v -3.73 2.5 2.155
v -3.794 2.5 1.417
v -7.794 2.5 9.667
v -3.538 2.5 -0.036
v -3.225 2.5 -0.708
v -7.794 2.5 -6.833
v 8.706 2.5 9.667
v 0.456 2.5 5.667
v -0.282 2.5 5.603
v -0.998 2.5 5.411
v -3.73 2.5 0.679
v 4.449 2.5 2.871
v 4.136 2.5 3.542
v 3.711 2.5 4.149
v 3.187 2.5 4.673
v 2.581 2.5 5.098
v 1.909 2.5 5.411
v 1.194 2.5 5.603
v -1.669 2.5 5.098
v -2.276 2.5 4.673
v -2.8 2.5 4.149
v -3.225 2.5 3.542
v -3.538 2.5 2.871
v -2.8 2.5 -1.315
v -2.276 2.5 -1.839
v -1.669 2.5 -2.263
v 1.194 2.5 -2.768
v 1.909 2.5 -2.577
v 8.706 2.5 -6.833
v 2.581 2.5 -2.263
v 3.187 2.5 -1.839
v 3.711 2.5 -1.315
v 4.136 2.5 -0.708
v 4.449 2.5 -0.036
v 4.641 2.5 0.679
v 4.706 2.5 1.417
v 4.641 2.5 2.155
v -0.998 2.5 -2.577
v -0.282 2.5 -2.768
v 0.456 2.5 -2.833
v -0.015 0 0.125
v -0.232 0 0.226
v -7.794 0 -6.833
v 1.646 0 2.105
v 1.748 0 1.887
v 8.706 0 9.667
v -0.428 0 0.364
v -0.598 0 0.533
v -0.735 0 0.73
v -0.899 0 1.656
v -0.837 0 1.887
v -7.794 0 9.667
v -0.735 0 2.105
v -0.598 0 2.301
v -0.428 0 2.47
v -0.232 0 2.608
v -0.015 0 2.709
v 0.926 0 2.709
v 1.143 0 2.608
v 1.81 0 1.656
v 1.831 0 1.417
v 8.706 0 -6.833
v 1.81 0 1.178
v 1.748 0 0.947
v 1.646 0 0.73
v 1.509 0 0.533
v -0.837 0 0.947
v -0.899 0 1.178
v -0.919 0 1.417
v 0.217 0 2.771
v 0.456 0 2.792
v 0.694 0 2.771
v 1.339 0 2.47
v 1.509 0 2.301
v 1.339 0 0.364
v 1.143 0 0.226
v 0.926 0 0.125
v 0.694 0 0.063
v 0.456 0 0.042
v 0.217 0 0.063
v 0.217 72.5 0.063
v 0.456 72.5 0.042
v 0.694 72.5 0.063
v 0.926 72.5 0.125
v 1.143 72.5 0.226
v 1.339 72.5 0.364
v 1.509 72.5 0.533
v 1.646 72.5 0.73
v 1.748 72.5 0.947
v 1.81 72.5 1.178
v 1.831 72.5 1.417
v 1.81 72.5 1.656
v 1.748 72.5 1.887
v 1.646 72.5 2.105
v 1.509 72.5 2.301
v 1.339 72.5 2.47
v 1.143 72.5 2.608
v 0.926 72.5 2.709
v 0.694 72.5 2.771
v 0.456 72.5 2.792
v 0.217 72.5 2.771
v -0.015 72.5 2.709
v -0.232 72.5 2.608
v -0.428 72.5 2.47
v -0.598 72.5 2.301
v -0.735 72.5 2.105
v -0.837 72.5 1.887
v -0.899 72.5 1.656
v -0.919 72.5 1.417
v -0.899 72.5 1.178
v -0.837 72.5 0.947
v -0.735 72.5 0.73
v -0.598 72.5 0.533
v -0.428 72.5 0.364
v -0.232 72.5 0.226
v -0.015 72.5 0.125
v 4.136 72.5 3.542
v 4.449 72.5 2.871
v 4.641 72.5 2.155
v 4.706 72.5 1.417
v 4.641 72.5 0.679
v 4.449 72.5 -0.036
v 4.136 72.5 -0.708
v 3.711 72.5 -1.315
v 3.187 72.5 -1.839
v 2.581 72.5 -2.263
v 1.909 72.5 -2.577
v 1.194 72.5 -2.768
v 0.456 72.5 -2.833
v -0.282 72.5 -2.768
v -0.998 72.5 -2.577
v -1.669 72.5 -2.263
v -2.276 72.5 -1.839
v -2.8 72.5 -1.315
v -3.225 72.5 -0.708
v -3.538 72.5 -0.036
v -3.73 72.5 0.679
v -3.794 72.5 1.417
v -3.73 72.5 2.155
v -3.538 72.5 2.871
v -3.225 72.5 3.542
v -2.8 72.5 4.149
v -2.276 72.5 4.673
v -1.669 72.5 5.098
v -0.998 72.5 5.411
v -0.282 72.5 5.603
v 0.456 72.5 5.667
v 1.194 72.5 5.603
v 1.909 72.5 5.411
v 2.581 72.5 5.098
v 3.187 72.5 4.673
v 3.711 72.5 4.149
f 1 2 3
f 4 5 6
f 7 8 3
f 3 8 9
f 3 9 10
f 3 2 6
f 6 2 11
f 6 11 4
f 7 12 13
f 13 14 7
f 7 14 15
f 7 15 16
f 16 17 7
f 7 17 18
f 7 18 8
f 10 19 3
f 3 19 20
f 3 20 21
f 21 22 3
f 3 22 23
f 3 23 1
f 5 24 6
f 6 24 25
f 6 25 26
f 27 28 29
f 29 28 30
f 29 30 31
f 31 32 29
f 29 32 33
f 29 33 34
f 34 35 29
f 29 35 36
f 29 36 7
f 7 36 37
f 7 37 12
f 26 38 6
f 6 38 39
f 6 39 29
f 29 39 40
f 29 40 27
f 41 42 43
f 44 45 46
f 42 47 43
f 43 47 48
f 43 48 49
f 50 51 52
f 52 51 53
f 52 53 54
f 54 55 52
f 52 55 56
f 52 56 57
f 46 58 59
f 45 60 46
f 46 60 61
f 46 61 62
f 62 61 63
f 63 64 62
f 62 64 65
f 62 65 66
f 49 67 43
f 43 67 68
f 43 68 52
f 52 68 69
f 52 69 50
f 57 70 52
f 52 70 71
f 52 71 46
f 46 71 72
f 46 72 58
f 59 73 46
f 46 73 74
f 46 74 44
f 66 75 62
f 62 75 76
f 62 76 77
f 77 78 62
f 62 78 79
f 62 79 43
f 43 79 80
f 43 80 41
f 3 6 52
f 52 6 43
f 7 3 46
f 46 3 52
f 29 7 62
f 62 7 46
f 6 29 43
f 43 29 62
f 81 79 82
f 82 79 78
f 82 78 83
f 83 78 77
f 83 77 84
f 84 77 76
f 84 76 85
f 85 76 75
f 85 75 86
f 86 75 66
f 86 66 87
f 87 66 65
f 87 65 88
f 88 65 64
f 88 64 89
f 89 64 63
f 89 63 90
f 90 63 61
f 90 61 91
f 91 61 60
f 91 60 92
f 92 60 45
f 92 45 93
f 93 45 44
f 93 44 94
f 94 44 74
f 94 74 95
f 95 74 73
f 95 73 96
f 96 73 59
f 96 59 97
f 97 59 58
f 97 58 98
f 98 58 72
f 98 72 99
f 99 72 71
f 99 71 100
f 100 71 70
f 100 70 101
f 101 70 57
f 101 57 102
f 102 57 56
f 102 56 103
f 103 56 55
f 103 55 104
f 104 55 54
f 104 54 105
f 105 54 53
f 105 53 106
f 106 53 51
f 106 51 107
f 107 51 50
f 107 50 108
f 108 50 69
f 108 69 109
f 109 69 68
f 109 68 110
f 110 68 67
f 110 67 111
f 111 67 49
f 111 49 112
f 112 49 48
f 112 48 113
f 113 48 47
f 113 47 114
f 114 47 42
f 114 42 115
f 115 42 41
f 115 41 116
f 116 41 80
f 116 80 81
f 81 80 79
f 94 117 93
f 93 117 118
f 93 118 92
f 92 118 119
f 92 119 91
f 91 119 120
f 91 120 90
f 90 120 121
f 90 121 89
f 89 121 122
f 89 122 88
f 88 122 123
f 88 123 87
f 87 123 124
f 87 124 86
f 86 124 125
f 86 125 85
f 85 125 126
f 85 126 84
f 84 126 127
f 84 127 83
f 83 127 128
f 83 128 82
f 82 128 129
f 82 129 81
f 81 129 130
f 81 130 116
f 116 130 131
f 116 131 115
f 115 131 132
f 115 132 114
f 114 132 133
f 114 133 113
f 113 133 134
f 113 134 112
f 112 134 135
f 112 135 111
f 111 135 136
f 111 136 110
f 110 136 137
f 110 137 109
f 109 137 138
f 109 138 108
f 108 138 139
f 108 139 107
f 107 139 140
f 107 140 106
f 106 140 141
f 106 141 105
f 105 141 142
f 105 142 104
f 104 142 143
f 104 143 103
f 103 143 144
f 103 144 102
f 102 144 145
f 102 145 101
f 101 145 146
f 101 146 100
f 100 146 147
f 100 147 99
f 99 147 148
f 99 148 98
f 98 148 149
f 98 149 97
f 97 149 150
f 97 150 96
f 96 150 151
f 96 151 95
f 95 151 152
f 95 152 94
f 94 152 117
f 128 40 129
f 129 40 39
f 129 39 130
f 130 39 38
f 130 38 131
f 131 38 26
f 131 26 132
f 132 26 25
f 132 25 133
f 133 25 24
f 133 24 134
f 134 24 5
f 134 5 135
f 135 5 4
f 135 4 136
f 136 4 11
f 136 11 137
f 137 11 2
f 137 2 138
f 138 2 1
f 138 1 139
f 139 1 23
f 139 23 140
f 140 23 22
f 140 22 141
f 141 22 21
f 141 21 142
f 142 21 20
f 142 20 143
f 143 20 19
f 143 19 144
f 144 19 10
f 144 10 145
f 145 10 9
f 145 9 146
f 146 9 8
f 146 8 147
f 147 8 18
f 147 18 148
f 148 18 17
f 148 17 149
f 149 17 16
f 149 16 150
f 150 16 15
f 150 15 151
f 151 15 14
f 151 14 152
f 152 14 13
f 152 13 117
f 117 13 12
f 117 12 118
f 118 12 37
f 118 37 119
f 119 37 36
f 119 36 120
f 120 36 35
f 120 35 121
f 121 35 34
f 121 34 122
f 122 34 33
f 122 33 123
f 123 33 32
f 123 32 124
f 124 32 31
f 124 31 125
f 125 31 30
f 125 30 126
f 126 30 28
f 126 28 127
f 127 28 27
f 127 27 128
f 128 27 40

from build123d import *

# Parameters (mm, degrees)
SKETCH1_W           = 16.5
SKETCH1_H           = 16.5
SKETCH1_R           = 1.375
BOSS_EXTRUDE1_DEPTH = 2.5
SKETCH2_R           = 4.25
SKETCH2_R_2         = 1.375
BOSS_EXTRUDE2_DEPTH = 70


with BuildPart() as part:
    # Sketch1 → Boss-Extrude1 (new body)
    with BuildSketch(Plane(origin=(0, 0, 0), x_dir=(1, 0, 0), z_dir=(0, 1, 0))):
        with Locations((0.455521472, -1.417177914)):
            Rectangle(SKETCH1_W, SKETCH1_H)
        with Locations(Location((0.455521472, -1.417177914, 0), (0, 0, 270))):
            Circle(SKETCH1_R, mode=Mode.SUBTRACT)
    extrude(amount=BOSS_EXTRUDE1_DEPTH)

    # Sketch2 → Boss-Extrude2 (add)
    with BuildSketch(Plane(origin=(0, 2.5, 0), x_dir=(1, 0, 0), z_dir=(0, 1, 0))):
        with Locations(Location((0.455521472, -1.417177914, 0), (0, 0, 270))):
            Circle(SKETCH2_R)
        with Locations(Location((0.455521472, -1.417177914, 0), (0, 0, 270))):
            Circle(SKETCH2_R_2, mode=Mode.SUBTRACT)
    extrude(amount=BOSS_EXTRUDE2_DEPTH)


solid = part.part
